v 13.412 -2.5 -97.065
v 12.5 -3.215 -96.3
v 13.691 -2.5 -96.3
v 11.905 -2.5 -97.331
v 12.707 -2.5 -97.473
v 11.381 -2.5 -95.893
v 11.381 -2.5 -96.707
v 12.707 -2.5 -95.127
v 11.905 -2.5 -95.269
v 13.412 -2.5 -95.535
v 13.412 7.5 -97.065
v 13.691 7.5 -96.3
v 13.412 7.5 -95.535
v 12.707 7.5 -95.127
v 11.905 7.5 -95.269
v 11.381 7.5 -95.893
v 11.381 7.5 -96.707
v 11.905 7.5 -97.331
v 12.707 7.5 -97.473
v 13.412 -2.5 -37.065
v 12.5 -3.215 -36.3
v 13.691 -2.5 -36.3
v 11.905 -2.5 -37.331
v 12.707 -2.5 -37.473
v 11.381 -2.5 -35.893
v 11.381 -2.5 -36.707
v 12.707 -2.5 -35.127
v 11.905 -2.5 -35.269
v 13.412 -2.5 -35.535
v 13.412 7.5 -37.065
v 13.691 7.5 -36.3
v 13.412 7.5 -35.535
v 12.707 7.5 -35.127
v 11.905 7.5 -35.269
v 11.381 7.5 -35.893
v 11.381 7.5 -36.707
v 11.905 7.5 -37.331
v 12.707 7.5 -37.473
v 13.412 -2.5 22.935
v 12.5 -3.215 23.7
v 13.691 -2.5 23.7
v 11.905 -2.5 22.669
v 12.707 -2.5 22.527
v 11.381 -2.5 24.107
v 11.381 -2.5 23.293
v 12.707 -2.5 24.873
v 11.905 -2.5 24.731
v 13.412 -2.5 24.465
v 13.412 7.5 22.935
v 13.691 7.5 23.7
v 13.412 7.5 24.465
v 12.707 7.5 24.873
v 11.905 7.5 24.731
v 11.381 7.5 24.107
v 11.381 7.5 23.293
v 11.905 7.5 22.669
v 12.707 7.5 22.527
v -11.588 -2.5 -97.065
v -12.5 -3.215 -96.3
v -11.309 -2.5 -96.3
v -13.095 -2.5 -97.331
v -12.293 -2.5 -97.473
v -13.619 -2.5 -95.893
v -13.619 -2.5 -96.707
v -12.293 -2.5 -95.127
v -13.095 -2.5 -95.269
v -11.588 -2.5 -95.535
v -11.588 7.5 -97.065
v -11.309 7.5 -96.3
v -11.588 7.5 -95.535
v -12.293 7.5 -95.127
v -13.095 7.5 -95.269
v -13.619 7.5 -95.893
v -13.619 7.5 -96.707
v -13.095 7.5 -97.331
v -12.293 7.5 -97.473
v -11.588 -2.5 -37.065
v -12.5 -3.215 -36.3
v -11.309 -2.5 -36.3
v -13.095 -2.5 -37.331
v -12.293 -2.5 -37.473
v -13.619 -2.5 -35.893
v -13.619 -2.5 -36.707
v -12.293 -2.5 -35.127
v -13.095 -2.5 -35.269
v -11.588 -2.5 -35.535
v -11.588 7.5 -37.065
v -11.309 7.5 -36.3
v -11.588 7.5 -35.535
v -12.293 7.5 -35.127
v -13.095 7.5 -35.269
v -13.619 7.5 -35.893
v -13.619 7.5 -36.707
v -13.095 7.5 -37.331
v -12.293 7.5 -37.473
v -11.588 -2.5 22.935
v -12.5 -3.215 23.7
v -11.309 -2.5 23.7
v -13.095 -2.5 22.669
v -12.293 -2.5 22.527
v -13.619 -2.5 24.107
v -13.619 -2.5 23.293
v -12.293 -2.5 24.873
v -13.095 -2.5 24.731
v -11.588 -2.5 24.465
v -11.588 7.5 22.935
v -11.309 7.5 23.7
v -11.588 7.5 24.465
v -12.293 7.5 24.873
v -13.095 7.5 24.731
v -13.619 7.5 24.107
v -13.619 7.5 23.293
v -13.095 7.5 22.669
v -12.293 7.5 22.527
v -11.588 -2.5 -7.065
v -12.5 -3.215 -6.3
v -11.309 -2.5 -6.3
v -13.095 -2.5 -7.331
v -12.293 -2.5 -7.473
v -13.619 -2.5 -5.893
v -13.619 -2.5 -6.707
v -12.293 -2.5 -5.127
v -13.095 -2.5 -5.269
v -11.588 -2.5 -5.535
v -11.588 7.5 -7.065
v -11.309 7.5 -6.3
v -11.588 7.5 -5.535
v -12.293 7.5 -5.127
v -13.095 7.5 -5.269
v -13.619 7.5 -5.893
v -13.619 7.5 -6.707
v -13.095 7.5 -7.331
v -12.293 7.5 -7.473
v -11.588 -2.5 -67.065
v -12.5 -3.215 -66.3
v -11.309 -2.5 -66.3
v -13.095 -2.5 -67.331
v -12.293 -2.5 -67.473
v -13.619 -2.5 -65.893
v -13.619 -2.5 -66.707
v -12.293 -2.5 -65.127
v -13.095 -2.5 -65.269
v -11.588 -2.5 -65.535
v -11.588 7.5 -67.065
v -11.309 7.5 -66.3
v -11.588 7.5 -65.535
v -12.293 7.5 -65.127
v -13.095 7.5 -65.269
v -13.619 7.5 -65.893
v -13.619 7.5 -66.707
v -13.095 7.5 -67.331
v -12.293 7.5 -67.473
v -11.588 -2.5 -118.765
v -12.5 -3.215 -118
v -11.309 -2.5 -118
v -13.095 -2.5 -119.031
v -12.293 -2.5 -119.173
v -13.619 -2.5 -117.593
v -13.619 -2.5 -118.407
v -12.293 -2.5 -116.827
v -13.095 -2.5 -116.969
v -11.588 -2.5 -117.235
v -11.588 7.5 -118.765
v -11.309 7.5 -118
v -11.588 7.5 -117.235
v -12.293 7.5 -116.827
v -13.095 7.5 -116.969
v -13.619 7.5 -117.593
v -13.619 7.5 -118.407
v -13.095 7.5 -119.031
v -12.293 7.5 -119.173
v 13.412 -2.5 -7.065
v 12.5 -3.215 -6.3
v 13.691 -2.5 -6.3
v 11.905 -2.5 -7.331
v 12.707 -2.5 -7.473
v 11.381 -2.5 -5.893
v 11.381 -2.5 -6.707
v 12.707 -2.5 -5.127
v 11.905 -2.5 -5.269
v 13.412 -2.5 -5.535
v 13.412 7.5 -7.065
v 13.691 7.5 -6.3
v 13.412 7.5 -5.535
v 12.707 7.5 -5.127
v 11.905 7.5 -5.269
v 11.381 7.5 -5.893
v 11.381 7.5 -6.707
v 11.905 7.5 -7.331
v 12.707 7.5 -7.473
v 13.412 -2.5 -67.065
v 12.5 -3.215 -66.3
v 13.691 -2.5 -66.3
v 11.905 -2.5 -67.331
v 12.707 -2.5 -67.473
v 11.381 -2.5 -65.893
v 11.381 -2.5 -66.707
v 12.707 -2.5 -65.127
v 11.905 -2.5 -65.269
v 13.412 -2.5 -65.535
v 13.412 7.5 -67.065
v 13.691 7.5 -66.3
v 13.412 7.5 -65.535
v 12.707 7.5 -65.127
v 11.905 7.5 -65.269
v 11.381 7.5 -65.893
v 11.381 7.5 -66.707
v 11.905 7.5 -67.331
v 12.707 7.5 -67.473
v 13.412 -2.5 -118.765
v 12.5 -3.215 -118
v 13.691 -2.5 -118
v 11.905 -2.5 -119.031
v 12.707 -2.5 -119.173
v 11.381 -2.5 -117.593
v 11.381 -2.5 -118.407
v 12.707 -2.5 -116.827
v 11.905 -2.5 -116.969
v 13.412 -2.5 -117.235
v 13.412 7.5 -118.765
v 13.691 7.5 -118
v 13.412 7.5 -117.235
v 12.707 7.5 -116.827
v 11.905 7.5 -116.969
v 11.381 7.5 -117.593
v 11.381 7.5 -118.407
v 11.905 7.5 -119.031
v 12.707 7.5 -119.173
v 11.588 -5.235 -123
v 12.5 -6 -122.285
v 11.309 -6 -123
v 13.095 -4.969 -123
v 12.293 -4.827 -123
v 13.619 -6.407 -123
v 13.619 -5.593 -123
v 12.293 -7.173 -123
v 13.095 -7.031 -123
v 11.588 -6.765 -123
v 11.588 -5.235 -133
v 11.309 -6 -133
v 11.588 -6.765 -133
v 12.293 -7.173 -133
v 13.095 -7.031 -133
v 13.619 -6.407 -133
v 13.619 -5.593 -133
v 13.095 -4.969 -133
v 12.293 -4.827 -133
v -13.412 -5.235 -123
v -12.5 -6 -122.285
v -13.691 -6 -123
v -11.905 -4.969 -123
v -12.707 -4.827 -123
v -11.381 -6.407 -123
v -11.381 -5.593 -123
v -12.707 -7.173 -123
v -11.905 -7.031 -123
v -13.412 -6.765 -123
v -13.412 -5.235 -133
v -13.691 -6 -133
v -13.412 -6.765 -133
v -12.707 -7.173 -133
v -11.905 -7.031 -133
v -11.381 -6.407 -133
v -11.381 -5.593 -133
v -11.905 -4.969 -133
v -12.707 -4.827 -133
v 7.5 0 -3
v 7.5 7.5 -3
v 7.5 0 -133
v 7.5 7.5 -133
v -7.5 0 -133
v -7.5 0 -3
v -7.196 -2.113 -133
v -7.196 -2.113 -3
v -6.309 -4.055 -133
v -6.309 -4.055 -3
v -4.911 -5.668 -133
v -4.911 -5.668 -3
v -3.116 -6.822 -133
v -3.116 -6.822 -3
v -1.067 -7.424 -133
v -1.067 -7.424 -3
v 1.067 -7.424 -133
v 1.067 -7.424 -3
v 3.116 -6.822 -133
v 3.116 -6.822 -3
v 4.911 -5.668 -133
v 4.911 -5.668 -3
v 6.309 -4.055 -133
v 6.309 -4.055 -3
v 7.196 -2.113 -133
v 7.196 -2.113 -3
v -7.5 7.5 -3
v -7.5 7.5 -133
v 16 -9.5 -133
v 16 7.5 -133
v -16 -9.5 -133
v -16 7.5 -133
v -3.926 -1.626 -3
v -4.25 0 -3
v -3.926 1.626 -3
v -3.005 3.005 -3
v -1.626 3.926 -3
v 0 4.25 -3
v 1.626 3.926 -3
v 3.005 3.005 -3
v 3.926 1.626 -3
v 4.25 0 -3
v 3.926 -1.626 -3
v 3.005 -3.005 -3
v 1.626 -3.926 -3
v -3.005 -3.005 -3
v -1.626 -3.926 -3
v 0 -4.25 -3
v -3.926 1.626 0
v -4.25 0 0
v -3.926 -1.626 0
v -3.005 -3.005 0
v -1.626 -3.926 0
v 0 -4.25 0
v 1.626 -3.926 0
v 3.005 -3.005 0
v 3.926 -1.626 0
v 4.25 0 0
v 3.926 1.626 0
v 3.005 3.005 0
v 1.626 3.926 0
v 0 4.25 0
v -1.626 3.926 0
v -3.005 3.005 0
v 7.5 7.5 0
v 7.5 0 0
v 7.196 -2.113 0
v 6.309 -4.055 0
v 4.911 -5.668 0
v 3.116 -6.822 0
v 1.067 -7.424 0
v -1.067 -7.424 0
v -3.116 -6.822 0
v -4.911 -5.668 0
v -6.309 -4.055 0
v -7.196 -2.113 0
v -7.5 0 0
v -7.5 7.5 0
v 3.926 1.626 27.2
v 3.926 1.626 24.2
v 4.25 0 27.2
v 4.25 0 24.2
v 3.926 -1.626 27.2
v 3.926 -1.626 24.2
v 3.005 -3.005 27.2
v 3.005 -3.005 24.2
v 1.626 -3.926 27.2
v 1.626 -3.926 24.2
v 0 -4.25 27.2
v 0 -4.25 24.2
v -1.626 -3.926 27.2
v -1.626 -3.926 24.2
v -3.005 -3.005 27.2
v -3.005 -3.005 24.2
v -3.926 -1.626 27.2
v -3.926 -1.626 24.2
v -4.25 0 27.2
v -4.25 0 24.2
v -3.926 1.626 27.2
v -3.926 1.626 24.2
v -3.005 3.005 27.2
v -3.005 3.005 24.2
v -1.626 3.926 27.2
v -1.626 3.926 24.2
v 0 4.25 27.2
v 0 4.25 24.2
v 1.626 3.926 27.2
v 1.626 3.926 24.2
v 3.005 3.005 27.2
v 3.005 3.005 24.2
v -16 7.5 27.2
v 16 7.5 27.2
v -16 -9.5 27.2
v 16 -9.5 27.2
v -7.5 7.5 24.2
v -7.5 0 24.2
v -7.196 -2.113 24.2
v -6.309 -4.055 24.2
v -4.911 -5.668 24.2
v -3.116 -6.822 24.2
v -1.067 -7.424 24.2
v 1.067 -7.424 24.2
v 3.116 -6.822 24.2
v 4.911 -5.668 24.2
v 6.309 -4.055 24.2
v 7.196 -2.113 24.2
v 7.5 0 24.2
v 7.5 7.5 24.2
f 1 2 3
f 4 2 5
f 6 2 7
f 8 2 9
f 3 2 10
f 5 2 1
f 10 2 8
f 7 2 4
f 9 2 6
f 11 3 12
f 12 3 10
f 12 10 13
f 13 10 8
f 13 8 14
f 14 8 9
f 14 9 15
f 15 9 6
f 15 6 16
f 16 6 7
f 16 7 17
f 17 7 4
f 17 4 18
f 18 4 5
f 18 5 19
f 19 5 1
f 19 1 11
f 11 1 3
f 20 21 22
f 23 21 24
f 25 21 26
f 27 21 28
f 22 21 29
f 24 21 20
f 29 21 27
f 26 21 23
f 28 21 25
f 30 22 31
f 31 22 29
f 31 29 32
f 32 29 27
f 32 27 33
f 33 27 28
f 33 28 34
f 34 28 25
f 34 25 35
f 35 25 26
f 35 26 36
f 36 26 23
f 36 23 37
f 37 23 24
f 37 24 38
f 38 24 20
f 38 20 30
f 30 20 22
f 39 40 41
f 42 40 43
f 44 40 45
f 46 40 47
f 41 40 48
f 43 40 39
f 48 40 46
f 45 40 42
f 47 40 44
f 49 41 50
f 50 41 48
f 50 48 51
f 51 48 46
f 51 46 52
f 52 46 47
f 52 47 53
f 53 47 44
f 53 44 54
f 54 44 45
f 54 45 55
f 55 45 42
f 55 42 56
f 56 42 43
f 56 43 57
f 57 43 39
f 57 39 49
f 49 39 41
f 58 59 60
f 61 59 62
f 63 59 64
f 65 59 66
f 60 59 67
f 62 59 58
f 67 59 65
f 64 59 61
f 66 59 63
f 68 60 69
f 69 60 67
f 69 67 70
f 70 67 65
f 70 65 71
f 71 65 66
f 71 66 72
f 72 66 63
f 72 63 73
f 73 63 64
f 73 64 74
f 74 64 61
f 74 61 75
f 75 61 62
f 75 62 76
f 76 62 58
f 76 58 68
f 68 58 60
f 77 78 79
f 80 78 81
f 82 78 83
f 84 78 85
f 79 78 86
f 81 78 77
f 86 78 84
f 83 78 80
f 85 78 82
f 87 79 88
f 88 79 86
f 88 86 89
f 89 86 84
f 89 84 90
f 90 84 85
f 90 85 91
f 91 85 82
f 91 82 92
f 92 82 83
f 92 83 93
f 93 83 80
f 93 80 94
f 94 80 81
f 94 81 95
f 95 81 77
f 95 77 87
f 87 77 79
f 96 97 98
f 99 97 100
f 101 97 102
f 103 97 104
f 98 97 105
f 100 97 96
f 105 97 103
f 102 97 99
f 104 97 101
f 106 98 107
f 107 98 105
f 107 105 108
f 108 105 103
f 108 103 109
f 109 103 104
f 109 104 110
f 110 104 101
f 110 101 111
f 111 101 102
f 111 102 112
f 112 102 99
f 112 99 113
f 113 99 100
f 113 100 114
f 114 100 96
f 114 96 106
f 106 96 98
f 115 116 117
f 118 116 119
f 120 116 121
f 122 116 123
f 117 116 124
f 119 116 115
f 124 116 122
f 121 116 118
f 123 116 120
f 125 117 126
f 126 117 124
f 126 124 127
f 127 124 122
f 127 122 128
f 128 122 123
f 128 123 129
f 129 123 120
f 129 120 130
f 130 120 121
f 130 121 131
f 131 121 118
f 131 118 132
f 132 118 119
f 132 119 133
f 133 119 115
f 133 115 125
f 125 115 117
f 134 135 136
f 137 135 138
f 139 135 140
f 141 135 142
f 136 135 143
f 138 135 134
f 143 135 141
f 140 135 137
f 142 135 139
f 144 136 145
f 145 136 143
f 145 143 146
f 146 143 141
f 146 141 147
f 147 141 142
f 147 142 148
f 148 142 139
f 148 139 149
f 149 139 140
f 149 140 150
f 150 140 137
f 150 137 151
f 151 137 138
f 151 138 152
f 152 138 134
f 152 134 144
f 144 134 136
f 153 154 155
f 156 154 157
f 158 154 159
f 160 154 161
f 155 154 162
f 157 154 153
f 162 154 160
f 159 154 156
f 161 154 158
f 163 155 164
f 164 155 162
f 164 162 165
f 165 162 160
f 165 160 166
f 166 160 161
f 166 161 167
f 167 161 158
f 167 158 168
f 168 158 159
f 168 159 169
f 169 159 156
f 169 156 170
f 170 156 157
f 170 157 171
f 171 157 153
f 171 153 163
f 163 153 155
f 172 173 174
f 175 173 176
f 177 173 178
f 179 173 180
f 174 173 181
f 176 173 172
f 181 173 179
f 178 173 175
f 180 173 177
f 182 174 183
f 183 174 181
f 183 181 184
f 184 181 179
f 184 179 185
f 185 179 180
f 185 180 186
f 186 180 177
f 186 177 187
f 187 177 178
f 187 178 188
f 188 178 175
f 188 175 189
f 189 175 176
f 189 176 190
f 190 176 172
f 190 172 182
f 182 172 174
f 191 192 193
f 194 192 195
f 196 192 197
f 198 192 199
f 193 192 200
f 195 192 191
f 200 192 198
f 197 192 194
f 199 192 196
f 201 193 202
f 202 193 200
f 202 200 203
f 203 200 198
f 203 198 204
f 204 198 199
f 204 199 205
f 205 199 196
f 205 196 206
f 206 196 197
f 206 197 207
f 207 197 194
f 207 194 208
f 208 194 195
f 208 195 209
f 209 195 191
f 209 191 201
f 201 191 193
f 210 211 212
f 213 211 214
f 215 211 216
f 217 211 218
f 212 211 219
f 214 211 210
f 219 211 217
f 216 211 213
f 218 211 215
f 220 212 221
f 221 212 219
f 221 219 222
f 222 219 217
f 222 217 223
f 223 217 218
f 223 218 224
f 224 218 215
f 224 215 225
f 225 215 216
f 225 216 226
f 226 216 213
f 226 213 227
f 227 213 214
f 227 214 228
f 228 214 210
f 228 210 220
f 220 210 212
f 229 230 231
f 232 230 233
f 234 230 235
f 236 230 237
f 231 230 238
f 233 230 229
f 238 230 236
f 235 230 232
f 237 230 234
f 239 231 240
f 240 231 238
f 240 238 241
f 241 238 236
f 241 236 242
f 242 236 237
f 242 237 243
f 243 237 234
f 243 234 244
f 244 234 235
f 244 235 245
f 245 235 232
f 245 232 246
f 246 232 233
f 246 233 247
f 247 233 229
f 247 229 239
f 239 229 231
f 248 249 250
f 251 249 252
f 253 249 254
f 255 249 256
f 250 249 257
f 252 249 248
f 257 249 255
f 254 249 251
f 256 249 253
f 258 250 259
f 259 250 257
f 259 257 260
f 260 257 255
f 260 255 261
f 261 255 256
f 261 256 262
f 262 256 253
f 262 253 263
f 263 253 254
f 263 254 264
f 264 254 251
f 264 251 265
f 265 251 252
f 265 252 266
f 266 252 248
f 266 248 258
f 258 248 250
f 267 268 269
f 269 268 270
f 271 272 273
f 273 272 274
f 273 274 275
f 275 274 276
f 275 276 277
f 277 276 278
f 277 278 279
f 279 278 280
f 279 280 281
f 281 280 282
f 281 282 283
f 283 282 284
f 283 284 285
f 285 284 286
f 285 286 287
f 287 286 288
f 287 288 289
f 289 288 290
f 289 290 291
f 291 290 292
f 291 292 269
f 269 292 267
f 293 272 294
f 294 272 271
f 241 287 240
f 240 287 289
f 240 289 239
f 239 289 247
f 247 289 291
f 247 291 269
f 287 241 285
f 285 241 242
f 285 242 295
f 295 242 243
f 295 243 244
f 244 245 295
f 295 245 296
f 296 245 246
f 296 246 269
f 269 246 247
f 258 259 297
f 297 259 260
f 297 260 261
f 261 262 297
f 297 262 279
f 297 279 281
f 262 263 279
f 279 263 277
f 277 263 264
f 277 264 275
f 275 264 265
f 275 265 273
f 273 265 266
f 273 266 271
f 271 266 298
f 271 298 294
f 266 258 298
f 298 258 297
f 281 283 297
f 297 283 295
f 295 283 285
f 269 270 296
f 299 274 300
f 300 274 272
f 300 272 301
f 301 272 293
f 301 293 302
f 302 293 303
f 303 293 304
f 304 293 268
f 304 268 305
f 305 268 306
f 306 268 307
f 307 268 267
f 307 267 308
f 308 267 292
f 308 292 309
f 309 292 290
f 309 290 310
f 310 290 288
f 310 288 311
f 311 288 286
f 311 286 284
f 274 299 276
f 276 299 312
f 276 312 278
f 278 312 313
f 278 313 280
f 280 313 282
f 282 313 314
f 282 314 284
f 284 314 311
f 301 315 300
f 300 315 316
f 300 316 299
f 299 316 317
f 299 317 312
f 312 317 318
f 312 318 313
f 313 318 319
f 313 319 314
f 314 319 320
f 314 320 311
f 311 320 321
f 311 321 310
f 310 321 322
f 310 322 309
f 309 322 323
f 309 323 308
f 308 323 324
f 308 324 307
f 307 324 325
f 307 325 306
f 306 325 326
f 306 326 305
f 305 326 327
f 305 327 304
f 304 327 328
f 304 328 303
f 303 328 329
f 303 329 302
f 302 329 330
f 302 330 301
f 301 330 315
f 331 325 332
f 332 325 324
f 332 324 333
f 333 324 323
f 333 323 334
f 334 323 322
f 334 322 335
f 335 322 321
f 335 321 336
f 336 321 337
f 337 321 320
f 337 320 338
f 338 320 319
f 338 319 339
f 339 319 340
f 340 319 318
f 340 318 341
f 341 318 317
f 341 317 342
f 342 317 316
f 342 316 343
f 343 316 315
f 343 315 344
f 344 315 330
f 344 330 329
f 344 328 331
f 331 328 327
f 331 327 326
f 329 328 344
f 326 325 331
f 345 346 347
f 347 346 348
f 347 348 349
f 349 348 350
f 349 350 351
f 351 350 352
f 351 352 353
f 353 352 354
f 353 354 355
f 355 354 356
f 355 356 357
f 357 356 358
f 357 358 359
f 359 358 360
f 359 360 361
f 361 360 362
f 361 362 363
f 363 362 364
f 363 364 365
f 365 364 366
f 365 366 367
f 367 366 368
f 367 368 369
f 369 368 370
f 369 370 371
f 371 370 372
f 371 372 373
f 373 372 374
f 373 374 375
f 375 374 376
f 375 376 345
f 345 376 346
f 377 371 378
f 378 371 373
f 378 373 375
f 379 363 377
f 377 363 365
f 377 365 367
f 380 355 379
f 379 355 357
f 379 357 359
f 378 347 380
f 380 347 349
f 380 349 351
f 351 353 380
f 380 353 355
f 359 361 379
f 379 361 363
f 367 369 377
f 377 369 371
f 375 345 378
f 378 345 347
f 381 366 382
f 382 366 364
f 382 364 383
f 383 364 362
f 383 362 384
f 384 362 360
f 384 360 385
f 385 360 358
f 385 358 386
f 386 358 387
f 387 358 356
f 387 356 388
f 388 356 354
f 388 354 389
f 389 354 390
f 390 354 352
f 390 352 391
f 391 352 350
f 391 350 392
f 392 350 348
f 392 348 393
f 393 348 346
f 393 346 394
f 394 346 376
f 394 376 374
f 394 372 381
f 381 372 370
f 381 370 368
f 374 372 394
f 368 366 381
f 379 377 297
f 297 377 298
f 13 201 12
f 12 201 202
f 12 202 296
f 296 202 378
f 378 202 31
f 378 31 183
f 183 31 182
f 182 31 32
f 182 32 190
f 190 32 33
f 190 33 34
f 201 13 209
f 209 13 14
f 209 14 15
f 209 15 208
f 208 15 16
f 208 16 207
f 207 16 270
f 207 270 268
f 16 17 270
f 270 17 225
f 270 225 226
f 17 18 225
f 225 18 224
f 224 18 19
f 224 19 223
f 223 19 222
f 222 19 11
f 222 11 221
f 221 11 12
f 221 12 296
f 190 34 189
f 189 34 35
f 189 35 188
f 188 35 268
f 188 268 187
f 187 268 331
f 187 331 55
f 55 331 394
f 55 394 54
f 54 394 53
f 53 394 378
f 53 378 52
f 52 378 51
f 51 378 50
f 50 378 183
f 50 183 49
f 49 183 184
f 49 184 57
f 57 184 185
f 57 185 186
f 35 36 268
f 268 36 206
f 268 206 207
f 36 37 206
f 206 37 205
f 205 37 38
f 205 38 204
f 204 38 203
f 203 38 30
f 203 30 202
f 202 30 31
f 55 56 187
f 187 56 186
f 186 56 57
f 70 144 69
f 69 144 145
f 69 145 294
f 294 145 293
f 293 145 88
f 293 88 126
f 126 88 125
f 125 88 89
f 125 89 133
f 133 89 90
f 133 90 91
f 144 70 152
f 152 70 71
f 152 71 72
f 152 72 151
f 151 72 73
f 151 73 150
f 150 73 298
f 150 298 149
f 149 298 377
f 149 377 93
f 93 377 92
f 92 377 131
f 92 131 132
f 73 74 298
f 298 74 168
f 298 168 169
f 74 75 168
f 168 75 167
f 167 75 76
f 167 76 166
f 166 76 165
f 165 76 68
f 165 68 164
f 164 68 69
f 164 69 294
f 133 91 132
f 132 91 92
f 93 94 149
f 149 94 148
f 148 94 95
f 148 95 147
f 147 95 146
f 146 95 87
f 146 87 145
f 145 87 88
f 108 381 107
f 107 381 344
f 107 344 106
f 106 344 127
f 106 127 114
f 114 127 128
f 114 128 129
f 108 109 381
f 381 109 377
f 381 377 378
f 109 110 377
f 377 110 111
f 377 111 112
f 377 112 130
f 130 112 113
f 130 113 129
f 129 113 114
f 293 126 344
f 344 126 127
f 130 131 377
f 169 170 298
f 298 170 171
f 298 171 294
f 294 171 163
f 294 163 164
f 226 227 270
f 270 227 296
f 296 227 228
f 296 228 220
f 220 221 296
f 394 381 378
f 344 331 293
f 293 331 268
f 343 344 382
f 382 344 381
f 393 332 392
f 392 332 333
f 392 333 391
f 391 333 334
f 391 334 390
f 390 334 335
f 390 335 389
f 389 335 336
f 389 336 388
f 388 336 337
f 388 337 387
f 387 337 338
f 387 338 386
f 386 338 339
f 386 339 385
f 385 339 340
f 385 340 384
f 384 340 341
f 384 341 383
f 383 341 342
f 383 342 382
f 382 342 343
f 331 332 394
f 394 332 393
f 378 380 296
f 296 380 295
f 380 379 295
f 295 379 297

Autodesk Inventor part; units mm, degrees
ref_plane "YZ Plane" through (0, 0, 0) normal (1, 0, 0) x (0, 1, 0)
ref_plane "XZ Plane" through (0, 0, 0) normal (0, 1, 0) x (-1, 0, 0)
ref_plane "XY Plane" through (0, 0, 0) normal (0, 0, 1) x (1, 0, 0)
sketch "Sketch1" plane through (0, 0, 0) normal (0, 0, 1) x (1, 0, 0)
  circle A0 centre (0, 0) radius 7.5
  line L0 (-16, 7.5) -> (16, 7.5)
  line L1 (16, 7.5) -> (16, -9.5)
  line L2 (16, -9.5) -> (-16, -9.5)
  line L3 (-16, -9.5) -> (-16, 7.5)
  line L4 (-7.5, 0) -> (-7.5, 7.5)
  line L5 (7.5, 0) -> (7.5, 7.5)
  point P0 (0, -9.5)
  dimension "d0" = 15
  dimension "d5" = 32
  dimension "d6" = 2
extrude "Extrusion1" add sketch "Sketch1" along normal blind 24.2 contours A0 L5 L0 L1 L2 L3 L4
sketch "Sketch2" plane through (0, 0, 24.2) normal (0, 0, 1) x (1, 0, 0)
  line L0 (-16, -9.5) -> (16, -9.5) projected
  line L1 (16, -9.5) -> (16, 7.5) projected
  line L2 (16, 7.5) -> (7.5, 7.5) projected
  line L3 (7.5, 7.5) -> (7.5, 0) projected
  arc A0 (-7.5, 0) -> (7.5, 0) centre (0, 0) ccw projected
  line L4 (-7.5, 0) -> (-7.5, 7.5) projected
  line L5 (-7.5, 7.5) -> (-16, 7.5) projected
  line L6 (-16, 7.5) -> (-16, -9.5) projected
  circle A1 centre (0, 0) radius 4.25
  line L7 (-7.5, 7.5) -> (-16, 7.5) projected
  line L8 (-7.5, 7.5) -> (7.5, 7.5)
  dimension "d10" = 8.5
extrude "Extrusion3" add sketch "Sketch2" along normal blind 3
sketch "Sketch4" plane through (0, 0, 0) normal (0, 0, -1) x (-1, 0, 0)
  line L0 (-16, 7.5) -> (-7.5, 7.5) projected
  line L1 (-16, -9.5) -> (-16, 7.5) projected
  line L2 (16, -9.5) -> (-16, -9.5) projected
  line L3 (16, 7.5) -> (16, -9.5) projected
  line L4 (7.5, 7.5) -> (16, 7.5) projected
  line L5 (-7.5, 7.5) -> (7.5, 7.5) projected
  circle A0 centre (0, 0) radius 4.25 projected
extrude "Extrusion4" add sketch "Sketch4" along normal blind 3
sketch "Sketch5" plane through (0, 0, -3) normal (0, 0, -1) x (-1, 0, 0)
  line L0 (16, 7.5) -> (-16, 7.5) projected
  line L1 (16, -9.5) -> (16, 7.5) projected
  line L2 (-16, -9.5) -> (16, -9.5) projected
  line L3 (-16, 7.5) -> (-16, -9.5) projected
  circle A0 centre (0, 0) radius 7.5
  arc A1 (-7.5, 0) -> (7.5, 0) centre (0, 0) ccw projected
  line L4 (7.5, 0) -> (7.5, 7.5)
  line L5 (-16, 7.5) -> (16, 7.5) projected
  line L6 (-7.5, 7.5) -> (-7.5, 0) projected
  line L7 (-7.5, 0) -> (-7.5, 7.5)
extrude "Extrusion5" add sketch "Sketch5" along normal blind 130 contours L1 L2 L3 L0 L6 A0 L4
sketch "Sketch6" plane through (0, 0, -133) normal (0, 0, -1) x (-1, 0, 0)
  line L0 (0, 0) -> (0, -9.5) construction
  line L1 (16, -9.5) -> (-16, -9.5) construction
  line L2 (-16, 7.5) -> (-16, -9.5) construction
  point P0 (-12.5, -6)
  point P1 (12.5, -6)
  dimension "d17" = 3.5
  dimension "d18" = 3.5
hole "Hole1" at (12.5, -6, -133) at (-12.5, -6, -133) direction (0, 0, 1) diameter 2.3813 depth 10 tip angle 118
sketch "Sketch7" plane through (-16, 7.5, 27.2) normal (0, 1, 0) x (1, 0, 0)
  line L0 (16, 0) -> (16, 160.2) construction
  line L1 (32, 160.2) -> (0, 160.2) projected
  line L2 (0, 160.2) -> (0, 0) projected
  line L3 (32, 0) -> (0, 0) projected
  point P0 (16, 27.2)
  point P1 (3.5, 3.5)
  point P2 (3.5, 33.5)
  point P3 (3.5, 63.5)
  point P4 (3.5, 93.5)
  point P5 (3.5, 123.5)
  point P6 (3.5, 145.2)
  point P7 (28.5, 3.5)
  point P8 (28.5, 33.5)
  point P9 (28.5, 63.5)
  point P10 (28.5, 93.5)
  point P11 (28.5, 123.5)
  point P12 (28.5, 145.2)
  dimension "d27" = 3.5
  dimension "d44" = 30
  dimension "d49" = 3.5
  dimension "d50" = 15
hole "Hole3" at (-12.5, 7.5, 23.7) at (-12.5, 7.5, -6.3) at (-12.5, 7.5, -36.3) at (-12.5, 7.5, -66.3) at (-12.5, 7.5, -96.3) at (-12.5, 7.5, -118) at (12.5, 7.5, 23.7) at (12.5, 7.5, -6.3) at (12.5, 7.5, -36.3) at (12.5, 7.5, -66.3) at (12.5, 7.5, -96.3) at (12.5, 7.5, -118) direction (0, -1, 0) diameter 2.3813 depth 10 tip angle 118
properties part number "body_v2"
